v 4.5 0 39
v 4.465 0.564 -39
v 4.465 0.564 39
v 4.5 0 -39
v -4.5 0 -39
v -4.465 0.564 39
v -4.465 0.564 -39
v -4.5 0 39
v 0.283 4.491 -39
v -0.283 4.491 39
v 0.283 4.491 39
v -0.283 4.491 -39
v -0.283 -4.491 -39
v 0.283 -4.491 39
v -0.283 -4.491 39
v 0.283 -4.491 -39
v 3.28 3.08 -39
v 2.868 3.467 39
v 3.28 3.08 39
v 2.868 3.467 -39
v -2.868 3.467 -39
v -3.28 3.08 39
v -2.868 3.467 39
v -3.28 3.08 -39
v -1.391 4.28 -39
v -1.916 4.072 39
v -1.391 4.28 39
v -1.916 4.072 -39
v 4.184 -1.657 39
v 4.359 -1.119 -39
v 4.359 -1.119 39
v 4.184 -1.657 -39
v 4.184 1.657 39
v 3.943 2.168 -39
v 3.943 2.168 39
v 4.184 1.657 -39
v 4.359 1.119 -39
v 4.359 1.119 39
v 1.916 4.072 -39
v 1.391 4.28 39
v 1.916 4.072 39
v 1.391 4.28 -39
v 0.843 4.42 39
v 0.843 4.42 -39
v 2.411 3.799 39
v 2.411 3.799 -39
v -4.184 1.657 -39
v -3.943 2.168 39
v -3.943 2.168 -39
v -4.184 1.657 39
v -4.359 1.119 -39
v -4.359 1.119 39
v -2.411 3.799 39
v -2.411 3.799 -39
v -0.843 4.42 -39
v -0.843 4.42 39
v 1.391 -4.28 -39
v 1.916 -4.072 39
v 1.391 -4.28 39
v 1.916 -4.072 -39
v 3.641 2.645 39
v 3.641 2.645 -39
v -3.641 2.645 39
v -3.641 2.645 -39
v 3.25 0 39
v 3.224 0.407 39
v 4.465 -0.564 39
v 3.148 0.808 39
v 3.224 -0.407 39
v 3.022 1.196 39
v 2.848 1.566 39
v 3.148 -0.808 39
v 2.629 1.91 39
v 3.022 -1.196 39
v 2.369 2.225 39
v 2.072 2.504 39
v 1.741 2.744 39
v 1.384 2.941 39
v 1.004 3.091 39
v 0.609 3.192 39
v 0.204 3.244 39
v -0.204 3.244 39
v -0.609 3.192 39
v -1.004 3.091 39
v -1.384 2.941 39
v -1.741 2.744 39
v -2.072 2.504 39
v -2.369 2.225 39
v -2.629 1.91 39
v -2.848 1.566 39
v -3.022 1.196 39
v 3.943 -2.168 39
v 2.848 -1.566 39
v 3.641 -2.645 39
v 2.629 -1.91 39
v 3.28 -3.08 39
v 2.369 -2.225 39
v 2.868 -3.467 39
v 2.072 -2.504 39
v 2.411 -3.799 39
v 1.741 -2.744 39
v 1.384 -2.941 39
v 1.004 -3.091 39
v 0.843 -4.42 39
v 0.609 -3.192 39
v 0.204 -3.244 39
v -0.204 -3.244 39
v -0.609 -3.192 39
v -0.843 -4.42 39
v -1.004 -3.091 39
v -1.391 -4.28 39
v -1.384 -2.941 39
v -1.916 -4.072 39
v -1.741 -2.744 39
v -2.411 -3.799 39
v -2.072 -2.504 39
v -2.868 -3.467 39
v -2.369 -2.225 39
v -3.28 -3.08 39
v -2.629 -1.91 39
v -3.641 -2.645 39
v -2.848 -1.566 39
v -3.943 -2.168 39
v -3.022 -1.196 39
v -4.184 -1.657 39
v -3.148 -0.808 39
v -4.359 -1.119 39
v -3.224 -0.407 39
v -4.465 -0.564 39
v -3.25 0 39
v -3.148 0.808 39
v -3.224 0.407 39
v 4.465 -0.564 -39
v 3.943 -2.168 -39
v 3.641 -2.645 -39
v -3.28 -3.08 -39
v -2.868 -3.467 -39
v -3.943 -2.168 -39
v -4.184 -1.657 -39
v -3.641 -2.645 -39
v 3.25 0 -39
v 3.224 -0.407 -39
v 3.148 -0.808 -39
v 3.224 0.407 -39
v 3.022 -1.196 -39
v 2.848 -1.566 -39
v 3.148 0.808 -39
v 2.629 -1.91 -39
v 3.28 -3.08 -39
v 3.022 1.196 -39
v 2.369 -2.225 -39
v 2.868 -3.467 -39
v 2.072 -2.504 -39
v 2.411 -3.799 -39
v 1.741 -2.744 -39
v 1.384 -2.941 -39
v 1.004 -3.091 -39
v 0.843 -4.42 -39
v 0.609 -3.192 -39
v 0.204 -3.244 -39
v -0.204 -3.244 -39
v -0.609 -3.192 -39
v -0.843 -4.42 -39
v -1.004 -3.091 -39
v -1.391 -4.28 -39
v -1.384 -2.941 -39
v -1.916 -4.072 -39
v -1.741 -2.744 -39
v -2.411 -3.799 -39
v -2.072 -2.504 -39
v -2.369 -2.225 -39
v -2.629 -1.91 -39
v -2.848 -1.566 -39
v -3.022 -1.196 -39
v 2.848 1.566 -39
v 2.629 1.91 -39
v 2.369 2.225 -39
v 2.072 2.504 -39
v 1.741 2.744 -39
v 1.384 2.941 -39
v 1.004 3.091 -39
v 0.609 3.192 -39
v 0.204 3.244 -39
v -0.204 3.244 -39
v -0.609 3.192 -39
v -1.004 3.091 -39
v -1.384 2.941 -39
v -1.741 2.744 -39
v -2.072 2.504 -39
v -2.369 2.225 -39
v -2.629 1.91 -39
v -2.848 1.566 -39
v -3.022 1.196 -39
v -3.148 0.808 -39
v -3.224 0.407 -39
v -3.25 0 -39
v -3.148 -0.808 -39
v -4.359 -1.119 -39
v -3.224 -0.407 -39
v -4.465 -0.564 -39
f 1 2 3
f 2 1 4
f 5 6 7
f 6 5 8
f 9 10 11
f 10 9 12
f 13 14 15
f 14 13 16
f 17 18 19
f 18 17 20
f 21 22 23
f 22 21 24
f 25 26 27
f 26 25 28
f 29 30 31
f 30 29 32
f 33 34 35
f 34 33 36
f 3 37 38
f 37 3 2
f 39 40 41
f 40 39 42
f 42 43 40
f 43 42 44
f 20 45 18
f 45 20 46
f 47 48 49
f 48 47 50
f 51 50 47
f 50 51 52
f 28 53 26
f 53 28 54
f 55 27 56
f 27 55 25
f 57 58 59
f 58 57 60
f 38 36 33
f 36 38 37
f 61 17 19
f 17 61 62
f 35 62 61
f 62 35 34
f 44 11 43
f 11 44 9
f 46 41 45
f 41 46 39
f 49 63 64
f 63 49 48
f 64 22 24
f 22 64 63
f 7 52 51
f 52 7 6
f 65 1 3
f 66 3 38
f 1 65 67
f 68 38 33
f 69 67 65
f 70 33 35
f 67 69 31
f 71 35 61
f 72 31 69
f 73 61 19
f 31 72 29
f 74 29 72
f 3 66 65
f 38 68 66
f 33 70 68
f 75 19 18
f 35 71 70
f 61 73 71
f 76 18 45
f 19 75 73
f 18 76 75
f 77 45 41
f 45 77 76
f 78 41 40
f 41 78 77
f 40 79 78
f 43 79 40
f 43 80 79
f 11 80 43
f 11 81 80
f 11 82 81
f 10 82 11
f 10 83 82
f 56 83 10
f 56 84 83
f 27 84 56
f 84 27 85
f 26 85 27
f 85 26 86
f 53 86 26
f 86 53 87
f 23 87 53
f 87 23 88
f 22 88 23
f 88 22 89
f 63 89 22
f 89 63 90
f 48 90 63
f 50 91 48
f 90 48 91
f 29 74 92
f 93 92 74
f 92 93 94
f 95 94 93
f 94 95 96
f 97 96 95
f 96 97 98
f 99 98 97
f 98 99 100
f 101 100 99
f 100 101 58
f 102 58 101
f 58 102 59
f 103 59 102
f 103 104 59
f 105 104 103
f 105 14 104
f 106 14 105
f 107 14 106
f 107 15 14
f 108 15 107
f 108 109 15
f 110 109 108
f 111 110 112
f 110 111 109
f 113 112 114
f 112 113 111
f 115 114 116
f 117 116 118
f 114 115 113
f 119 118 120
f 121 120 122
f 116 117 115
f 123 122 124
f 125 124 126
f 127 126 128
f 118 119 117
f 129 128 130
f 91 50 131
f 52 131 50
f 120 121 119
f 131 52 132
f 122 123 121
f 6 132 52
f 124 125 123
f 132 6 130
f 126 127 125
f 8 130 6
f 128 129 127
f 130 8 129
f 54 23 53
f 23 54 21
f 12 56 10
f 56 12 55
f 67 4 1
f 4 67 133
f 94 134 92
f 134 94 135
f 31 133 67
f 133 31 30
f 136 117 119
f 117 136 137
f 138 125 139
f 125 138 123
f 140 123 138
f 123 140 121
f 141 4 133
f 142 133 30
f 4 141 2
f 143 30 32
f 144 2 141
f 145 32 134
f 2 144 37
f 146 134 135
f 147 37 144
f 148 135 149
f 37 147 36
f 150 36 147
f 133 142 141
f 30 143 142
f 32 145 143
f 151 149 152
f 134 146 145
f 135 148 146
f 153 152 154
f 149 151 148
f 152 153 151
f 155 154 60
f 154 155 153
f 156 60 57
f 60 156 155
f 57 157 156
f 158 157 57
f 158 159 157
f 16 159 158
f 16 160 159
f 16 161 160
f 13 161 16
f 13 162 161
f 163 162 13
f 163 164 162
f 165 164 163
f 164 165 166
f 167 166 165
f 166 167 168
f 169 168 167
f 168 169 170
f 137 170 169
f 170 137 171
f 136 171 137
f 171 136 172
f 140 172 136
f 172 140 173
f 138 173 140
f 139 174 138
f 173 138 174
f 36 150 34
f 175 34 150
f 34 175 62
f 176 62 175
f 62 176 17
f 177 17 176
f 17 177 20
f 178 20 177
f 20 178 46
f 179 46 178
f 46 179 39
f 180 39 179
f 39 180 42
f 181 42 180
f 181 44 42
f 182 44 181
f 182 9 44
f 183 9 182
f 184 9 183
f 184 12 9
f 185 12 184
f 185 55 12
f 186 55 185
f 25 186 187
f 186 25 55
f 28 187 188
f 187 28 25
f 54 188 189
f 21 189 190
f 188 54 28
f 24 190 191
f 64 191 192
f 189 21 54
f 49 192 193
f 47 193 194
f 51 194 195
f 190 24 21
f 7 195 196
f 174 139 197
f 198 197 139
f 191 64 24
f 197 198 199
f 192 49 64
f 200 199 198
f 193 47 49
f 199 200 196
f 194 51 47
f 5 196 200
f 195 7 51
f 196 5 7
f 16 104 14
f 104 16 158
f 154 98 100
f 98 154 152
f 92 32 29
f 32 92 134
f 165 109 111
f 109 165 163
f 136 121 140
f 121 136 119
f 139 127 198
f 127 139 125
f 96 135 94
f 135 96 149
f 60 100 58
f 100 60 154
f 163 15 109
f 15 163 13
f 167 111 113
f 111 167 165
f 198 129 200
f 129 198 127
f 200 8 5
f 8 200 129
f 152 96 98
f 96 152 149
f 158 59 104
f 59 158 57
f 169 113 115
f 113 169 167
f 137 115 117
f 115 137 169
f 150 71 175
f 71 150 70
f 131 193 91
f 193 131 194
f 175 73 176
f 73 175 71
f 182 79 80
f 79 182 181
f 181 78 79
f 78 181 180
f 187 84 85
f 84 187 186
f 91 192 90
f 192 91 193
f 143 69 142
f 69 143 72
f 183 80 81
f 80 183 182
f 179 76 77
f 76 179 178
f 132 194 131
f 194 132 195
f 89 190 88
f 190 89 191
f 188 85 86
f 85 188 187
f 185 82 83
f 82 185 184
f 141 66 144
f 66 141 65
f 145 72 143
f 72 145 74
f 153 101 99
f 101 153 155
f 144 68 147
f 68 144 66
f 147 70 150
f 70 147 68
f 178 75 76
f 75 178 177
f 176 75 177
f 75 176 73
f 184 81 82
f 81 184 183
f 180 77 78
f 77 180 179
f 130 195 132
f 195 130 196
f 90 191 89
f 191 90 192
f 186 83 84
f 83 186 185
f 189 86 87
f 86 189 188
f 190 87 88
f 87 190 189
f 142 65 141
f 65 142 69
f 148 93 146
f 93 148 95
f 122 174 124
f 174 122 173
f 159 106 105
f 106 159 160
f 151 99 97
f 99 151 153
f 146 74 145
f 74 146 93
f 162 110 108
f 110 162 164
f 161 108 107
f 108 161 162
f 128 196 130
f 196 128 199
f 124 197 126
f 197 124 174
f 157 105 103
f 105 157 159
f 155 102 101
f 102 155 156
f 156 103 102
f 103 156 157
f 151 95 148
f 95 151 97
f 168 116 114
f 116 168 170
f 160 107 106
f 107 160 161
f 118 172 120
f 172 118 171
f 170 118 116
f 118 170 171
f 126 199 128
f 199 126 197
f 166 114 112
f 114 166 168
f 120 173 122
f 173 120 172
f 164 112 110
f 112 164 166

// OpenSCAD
$fn = 50;


difference() {
	union() {
		translate(v = [0, 0, -39.0000000000]) {
			cylinder(h = 78, r = 4.5000000000);
		}
	}
	union() {
		translate(v = [0, 0, -100.0000000000]) {
			cylinder(h = 200, r = 3.2500000000);
		}
	}
}
